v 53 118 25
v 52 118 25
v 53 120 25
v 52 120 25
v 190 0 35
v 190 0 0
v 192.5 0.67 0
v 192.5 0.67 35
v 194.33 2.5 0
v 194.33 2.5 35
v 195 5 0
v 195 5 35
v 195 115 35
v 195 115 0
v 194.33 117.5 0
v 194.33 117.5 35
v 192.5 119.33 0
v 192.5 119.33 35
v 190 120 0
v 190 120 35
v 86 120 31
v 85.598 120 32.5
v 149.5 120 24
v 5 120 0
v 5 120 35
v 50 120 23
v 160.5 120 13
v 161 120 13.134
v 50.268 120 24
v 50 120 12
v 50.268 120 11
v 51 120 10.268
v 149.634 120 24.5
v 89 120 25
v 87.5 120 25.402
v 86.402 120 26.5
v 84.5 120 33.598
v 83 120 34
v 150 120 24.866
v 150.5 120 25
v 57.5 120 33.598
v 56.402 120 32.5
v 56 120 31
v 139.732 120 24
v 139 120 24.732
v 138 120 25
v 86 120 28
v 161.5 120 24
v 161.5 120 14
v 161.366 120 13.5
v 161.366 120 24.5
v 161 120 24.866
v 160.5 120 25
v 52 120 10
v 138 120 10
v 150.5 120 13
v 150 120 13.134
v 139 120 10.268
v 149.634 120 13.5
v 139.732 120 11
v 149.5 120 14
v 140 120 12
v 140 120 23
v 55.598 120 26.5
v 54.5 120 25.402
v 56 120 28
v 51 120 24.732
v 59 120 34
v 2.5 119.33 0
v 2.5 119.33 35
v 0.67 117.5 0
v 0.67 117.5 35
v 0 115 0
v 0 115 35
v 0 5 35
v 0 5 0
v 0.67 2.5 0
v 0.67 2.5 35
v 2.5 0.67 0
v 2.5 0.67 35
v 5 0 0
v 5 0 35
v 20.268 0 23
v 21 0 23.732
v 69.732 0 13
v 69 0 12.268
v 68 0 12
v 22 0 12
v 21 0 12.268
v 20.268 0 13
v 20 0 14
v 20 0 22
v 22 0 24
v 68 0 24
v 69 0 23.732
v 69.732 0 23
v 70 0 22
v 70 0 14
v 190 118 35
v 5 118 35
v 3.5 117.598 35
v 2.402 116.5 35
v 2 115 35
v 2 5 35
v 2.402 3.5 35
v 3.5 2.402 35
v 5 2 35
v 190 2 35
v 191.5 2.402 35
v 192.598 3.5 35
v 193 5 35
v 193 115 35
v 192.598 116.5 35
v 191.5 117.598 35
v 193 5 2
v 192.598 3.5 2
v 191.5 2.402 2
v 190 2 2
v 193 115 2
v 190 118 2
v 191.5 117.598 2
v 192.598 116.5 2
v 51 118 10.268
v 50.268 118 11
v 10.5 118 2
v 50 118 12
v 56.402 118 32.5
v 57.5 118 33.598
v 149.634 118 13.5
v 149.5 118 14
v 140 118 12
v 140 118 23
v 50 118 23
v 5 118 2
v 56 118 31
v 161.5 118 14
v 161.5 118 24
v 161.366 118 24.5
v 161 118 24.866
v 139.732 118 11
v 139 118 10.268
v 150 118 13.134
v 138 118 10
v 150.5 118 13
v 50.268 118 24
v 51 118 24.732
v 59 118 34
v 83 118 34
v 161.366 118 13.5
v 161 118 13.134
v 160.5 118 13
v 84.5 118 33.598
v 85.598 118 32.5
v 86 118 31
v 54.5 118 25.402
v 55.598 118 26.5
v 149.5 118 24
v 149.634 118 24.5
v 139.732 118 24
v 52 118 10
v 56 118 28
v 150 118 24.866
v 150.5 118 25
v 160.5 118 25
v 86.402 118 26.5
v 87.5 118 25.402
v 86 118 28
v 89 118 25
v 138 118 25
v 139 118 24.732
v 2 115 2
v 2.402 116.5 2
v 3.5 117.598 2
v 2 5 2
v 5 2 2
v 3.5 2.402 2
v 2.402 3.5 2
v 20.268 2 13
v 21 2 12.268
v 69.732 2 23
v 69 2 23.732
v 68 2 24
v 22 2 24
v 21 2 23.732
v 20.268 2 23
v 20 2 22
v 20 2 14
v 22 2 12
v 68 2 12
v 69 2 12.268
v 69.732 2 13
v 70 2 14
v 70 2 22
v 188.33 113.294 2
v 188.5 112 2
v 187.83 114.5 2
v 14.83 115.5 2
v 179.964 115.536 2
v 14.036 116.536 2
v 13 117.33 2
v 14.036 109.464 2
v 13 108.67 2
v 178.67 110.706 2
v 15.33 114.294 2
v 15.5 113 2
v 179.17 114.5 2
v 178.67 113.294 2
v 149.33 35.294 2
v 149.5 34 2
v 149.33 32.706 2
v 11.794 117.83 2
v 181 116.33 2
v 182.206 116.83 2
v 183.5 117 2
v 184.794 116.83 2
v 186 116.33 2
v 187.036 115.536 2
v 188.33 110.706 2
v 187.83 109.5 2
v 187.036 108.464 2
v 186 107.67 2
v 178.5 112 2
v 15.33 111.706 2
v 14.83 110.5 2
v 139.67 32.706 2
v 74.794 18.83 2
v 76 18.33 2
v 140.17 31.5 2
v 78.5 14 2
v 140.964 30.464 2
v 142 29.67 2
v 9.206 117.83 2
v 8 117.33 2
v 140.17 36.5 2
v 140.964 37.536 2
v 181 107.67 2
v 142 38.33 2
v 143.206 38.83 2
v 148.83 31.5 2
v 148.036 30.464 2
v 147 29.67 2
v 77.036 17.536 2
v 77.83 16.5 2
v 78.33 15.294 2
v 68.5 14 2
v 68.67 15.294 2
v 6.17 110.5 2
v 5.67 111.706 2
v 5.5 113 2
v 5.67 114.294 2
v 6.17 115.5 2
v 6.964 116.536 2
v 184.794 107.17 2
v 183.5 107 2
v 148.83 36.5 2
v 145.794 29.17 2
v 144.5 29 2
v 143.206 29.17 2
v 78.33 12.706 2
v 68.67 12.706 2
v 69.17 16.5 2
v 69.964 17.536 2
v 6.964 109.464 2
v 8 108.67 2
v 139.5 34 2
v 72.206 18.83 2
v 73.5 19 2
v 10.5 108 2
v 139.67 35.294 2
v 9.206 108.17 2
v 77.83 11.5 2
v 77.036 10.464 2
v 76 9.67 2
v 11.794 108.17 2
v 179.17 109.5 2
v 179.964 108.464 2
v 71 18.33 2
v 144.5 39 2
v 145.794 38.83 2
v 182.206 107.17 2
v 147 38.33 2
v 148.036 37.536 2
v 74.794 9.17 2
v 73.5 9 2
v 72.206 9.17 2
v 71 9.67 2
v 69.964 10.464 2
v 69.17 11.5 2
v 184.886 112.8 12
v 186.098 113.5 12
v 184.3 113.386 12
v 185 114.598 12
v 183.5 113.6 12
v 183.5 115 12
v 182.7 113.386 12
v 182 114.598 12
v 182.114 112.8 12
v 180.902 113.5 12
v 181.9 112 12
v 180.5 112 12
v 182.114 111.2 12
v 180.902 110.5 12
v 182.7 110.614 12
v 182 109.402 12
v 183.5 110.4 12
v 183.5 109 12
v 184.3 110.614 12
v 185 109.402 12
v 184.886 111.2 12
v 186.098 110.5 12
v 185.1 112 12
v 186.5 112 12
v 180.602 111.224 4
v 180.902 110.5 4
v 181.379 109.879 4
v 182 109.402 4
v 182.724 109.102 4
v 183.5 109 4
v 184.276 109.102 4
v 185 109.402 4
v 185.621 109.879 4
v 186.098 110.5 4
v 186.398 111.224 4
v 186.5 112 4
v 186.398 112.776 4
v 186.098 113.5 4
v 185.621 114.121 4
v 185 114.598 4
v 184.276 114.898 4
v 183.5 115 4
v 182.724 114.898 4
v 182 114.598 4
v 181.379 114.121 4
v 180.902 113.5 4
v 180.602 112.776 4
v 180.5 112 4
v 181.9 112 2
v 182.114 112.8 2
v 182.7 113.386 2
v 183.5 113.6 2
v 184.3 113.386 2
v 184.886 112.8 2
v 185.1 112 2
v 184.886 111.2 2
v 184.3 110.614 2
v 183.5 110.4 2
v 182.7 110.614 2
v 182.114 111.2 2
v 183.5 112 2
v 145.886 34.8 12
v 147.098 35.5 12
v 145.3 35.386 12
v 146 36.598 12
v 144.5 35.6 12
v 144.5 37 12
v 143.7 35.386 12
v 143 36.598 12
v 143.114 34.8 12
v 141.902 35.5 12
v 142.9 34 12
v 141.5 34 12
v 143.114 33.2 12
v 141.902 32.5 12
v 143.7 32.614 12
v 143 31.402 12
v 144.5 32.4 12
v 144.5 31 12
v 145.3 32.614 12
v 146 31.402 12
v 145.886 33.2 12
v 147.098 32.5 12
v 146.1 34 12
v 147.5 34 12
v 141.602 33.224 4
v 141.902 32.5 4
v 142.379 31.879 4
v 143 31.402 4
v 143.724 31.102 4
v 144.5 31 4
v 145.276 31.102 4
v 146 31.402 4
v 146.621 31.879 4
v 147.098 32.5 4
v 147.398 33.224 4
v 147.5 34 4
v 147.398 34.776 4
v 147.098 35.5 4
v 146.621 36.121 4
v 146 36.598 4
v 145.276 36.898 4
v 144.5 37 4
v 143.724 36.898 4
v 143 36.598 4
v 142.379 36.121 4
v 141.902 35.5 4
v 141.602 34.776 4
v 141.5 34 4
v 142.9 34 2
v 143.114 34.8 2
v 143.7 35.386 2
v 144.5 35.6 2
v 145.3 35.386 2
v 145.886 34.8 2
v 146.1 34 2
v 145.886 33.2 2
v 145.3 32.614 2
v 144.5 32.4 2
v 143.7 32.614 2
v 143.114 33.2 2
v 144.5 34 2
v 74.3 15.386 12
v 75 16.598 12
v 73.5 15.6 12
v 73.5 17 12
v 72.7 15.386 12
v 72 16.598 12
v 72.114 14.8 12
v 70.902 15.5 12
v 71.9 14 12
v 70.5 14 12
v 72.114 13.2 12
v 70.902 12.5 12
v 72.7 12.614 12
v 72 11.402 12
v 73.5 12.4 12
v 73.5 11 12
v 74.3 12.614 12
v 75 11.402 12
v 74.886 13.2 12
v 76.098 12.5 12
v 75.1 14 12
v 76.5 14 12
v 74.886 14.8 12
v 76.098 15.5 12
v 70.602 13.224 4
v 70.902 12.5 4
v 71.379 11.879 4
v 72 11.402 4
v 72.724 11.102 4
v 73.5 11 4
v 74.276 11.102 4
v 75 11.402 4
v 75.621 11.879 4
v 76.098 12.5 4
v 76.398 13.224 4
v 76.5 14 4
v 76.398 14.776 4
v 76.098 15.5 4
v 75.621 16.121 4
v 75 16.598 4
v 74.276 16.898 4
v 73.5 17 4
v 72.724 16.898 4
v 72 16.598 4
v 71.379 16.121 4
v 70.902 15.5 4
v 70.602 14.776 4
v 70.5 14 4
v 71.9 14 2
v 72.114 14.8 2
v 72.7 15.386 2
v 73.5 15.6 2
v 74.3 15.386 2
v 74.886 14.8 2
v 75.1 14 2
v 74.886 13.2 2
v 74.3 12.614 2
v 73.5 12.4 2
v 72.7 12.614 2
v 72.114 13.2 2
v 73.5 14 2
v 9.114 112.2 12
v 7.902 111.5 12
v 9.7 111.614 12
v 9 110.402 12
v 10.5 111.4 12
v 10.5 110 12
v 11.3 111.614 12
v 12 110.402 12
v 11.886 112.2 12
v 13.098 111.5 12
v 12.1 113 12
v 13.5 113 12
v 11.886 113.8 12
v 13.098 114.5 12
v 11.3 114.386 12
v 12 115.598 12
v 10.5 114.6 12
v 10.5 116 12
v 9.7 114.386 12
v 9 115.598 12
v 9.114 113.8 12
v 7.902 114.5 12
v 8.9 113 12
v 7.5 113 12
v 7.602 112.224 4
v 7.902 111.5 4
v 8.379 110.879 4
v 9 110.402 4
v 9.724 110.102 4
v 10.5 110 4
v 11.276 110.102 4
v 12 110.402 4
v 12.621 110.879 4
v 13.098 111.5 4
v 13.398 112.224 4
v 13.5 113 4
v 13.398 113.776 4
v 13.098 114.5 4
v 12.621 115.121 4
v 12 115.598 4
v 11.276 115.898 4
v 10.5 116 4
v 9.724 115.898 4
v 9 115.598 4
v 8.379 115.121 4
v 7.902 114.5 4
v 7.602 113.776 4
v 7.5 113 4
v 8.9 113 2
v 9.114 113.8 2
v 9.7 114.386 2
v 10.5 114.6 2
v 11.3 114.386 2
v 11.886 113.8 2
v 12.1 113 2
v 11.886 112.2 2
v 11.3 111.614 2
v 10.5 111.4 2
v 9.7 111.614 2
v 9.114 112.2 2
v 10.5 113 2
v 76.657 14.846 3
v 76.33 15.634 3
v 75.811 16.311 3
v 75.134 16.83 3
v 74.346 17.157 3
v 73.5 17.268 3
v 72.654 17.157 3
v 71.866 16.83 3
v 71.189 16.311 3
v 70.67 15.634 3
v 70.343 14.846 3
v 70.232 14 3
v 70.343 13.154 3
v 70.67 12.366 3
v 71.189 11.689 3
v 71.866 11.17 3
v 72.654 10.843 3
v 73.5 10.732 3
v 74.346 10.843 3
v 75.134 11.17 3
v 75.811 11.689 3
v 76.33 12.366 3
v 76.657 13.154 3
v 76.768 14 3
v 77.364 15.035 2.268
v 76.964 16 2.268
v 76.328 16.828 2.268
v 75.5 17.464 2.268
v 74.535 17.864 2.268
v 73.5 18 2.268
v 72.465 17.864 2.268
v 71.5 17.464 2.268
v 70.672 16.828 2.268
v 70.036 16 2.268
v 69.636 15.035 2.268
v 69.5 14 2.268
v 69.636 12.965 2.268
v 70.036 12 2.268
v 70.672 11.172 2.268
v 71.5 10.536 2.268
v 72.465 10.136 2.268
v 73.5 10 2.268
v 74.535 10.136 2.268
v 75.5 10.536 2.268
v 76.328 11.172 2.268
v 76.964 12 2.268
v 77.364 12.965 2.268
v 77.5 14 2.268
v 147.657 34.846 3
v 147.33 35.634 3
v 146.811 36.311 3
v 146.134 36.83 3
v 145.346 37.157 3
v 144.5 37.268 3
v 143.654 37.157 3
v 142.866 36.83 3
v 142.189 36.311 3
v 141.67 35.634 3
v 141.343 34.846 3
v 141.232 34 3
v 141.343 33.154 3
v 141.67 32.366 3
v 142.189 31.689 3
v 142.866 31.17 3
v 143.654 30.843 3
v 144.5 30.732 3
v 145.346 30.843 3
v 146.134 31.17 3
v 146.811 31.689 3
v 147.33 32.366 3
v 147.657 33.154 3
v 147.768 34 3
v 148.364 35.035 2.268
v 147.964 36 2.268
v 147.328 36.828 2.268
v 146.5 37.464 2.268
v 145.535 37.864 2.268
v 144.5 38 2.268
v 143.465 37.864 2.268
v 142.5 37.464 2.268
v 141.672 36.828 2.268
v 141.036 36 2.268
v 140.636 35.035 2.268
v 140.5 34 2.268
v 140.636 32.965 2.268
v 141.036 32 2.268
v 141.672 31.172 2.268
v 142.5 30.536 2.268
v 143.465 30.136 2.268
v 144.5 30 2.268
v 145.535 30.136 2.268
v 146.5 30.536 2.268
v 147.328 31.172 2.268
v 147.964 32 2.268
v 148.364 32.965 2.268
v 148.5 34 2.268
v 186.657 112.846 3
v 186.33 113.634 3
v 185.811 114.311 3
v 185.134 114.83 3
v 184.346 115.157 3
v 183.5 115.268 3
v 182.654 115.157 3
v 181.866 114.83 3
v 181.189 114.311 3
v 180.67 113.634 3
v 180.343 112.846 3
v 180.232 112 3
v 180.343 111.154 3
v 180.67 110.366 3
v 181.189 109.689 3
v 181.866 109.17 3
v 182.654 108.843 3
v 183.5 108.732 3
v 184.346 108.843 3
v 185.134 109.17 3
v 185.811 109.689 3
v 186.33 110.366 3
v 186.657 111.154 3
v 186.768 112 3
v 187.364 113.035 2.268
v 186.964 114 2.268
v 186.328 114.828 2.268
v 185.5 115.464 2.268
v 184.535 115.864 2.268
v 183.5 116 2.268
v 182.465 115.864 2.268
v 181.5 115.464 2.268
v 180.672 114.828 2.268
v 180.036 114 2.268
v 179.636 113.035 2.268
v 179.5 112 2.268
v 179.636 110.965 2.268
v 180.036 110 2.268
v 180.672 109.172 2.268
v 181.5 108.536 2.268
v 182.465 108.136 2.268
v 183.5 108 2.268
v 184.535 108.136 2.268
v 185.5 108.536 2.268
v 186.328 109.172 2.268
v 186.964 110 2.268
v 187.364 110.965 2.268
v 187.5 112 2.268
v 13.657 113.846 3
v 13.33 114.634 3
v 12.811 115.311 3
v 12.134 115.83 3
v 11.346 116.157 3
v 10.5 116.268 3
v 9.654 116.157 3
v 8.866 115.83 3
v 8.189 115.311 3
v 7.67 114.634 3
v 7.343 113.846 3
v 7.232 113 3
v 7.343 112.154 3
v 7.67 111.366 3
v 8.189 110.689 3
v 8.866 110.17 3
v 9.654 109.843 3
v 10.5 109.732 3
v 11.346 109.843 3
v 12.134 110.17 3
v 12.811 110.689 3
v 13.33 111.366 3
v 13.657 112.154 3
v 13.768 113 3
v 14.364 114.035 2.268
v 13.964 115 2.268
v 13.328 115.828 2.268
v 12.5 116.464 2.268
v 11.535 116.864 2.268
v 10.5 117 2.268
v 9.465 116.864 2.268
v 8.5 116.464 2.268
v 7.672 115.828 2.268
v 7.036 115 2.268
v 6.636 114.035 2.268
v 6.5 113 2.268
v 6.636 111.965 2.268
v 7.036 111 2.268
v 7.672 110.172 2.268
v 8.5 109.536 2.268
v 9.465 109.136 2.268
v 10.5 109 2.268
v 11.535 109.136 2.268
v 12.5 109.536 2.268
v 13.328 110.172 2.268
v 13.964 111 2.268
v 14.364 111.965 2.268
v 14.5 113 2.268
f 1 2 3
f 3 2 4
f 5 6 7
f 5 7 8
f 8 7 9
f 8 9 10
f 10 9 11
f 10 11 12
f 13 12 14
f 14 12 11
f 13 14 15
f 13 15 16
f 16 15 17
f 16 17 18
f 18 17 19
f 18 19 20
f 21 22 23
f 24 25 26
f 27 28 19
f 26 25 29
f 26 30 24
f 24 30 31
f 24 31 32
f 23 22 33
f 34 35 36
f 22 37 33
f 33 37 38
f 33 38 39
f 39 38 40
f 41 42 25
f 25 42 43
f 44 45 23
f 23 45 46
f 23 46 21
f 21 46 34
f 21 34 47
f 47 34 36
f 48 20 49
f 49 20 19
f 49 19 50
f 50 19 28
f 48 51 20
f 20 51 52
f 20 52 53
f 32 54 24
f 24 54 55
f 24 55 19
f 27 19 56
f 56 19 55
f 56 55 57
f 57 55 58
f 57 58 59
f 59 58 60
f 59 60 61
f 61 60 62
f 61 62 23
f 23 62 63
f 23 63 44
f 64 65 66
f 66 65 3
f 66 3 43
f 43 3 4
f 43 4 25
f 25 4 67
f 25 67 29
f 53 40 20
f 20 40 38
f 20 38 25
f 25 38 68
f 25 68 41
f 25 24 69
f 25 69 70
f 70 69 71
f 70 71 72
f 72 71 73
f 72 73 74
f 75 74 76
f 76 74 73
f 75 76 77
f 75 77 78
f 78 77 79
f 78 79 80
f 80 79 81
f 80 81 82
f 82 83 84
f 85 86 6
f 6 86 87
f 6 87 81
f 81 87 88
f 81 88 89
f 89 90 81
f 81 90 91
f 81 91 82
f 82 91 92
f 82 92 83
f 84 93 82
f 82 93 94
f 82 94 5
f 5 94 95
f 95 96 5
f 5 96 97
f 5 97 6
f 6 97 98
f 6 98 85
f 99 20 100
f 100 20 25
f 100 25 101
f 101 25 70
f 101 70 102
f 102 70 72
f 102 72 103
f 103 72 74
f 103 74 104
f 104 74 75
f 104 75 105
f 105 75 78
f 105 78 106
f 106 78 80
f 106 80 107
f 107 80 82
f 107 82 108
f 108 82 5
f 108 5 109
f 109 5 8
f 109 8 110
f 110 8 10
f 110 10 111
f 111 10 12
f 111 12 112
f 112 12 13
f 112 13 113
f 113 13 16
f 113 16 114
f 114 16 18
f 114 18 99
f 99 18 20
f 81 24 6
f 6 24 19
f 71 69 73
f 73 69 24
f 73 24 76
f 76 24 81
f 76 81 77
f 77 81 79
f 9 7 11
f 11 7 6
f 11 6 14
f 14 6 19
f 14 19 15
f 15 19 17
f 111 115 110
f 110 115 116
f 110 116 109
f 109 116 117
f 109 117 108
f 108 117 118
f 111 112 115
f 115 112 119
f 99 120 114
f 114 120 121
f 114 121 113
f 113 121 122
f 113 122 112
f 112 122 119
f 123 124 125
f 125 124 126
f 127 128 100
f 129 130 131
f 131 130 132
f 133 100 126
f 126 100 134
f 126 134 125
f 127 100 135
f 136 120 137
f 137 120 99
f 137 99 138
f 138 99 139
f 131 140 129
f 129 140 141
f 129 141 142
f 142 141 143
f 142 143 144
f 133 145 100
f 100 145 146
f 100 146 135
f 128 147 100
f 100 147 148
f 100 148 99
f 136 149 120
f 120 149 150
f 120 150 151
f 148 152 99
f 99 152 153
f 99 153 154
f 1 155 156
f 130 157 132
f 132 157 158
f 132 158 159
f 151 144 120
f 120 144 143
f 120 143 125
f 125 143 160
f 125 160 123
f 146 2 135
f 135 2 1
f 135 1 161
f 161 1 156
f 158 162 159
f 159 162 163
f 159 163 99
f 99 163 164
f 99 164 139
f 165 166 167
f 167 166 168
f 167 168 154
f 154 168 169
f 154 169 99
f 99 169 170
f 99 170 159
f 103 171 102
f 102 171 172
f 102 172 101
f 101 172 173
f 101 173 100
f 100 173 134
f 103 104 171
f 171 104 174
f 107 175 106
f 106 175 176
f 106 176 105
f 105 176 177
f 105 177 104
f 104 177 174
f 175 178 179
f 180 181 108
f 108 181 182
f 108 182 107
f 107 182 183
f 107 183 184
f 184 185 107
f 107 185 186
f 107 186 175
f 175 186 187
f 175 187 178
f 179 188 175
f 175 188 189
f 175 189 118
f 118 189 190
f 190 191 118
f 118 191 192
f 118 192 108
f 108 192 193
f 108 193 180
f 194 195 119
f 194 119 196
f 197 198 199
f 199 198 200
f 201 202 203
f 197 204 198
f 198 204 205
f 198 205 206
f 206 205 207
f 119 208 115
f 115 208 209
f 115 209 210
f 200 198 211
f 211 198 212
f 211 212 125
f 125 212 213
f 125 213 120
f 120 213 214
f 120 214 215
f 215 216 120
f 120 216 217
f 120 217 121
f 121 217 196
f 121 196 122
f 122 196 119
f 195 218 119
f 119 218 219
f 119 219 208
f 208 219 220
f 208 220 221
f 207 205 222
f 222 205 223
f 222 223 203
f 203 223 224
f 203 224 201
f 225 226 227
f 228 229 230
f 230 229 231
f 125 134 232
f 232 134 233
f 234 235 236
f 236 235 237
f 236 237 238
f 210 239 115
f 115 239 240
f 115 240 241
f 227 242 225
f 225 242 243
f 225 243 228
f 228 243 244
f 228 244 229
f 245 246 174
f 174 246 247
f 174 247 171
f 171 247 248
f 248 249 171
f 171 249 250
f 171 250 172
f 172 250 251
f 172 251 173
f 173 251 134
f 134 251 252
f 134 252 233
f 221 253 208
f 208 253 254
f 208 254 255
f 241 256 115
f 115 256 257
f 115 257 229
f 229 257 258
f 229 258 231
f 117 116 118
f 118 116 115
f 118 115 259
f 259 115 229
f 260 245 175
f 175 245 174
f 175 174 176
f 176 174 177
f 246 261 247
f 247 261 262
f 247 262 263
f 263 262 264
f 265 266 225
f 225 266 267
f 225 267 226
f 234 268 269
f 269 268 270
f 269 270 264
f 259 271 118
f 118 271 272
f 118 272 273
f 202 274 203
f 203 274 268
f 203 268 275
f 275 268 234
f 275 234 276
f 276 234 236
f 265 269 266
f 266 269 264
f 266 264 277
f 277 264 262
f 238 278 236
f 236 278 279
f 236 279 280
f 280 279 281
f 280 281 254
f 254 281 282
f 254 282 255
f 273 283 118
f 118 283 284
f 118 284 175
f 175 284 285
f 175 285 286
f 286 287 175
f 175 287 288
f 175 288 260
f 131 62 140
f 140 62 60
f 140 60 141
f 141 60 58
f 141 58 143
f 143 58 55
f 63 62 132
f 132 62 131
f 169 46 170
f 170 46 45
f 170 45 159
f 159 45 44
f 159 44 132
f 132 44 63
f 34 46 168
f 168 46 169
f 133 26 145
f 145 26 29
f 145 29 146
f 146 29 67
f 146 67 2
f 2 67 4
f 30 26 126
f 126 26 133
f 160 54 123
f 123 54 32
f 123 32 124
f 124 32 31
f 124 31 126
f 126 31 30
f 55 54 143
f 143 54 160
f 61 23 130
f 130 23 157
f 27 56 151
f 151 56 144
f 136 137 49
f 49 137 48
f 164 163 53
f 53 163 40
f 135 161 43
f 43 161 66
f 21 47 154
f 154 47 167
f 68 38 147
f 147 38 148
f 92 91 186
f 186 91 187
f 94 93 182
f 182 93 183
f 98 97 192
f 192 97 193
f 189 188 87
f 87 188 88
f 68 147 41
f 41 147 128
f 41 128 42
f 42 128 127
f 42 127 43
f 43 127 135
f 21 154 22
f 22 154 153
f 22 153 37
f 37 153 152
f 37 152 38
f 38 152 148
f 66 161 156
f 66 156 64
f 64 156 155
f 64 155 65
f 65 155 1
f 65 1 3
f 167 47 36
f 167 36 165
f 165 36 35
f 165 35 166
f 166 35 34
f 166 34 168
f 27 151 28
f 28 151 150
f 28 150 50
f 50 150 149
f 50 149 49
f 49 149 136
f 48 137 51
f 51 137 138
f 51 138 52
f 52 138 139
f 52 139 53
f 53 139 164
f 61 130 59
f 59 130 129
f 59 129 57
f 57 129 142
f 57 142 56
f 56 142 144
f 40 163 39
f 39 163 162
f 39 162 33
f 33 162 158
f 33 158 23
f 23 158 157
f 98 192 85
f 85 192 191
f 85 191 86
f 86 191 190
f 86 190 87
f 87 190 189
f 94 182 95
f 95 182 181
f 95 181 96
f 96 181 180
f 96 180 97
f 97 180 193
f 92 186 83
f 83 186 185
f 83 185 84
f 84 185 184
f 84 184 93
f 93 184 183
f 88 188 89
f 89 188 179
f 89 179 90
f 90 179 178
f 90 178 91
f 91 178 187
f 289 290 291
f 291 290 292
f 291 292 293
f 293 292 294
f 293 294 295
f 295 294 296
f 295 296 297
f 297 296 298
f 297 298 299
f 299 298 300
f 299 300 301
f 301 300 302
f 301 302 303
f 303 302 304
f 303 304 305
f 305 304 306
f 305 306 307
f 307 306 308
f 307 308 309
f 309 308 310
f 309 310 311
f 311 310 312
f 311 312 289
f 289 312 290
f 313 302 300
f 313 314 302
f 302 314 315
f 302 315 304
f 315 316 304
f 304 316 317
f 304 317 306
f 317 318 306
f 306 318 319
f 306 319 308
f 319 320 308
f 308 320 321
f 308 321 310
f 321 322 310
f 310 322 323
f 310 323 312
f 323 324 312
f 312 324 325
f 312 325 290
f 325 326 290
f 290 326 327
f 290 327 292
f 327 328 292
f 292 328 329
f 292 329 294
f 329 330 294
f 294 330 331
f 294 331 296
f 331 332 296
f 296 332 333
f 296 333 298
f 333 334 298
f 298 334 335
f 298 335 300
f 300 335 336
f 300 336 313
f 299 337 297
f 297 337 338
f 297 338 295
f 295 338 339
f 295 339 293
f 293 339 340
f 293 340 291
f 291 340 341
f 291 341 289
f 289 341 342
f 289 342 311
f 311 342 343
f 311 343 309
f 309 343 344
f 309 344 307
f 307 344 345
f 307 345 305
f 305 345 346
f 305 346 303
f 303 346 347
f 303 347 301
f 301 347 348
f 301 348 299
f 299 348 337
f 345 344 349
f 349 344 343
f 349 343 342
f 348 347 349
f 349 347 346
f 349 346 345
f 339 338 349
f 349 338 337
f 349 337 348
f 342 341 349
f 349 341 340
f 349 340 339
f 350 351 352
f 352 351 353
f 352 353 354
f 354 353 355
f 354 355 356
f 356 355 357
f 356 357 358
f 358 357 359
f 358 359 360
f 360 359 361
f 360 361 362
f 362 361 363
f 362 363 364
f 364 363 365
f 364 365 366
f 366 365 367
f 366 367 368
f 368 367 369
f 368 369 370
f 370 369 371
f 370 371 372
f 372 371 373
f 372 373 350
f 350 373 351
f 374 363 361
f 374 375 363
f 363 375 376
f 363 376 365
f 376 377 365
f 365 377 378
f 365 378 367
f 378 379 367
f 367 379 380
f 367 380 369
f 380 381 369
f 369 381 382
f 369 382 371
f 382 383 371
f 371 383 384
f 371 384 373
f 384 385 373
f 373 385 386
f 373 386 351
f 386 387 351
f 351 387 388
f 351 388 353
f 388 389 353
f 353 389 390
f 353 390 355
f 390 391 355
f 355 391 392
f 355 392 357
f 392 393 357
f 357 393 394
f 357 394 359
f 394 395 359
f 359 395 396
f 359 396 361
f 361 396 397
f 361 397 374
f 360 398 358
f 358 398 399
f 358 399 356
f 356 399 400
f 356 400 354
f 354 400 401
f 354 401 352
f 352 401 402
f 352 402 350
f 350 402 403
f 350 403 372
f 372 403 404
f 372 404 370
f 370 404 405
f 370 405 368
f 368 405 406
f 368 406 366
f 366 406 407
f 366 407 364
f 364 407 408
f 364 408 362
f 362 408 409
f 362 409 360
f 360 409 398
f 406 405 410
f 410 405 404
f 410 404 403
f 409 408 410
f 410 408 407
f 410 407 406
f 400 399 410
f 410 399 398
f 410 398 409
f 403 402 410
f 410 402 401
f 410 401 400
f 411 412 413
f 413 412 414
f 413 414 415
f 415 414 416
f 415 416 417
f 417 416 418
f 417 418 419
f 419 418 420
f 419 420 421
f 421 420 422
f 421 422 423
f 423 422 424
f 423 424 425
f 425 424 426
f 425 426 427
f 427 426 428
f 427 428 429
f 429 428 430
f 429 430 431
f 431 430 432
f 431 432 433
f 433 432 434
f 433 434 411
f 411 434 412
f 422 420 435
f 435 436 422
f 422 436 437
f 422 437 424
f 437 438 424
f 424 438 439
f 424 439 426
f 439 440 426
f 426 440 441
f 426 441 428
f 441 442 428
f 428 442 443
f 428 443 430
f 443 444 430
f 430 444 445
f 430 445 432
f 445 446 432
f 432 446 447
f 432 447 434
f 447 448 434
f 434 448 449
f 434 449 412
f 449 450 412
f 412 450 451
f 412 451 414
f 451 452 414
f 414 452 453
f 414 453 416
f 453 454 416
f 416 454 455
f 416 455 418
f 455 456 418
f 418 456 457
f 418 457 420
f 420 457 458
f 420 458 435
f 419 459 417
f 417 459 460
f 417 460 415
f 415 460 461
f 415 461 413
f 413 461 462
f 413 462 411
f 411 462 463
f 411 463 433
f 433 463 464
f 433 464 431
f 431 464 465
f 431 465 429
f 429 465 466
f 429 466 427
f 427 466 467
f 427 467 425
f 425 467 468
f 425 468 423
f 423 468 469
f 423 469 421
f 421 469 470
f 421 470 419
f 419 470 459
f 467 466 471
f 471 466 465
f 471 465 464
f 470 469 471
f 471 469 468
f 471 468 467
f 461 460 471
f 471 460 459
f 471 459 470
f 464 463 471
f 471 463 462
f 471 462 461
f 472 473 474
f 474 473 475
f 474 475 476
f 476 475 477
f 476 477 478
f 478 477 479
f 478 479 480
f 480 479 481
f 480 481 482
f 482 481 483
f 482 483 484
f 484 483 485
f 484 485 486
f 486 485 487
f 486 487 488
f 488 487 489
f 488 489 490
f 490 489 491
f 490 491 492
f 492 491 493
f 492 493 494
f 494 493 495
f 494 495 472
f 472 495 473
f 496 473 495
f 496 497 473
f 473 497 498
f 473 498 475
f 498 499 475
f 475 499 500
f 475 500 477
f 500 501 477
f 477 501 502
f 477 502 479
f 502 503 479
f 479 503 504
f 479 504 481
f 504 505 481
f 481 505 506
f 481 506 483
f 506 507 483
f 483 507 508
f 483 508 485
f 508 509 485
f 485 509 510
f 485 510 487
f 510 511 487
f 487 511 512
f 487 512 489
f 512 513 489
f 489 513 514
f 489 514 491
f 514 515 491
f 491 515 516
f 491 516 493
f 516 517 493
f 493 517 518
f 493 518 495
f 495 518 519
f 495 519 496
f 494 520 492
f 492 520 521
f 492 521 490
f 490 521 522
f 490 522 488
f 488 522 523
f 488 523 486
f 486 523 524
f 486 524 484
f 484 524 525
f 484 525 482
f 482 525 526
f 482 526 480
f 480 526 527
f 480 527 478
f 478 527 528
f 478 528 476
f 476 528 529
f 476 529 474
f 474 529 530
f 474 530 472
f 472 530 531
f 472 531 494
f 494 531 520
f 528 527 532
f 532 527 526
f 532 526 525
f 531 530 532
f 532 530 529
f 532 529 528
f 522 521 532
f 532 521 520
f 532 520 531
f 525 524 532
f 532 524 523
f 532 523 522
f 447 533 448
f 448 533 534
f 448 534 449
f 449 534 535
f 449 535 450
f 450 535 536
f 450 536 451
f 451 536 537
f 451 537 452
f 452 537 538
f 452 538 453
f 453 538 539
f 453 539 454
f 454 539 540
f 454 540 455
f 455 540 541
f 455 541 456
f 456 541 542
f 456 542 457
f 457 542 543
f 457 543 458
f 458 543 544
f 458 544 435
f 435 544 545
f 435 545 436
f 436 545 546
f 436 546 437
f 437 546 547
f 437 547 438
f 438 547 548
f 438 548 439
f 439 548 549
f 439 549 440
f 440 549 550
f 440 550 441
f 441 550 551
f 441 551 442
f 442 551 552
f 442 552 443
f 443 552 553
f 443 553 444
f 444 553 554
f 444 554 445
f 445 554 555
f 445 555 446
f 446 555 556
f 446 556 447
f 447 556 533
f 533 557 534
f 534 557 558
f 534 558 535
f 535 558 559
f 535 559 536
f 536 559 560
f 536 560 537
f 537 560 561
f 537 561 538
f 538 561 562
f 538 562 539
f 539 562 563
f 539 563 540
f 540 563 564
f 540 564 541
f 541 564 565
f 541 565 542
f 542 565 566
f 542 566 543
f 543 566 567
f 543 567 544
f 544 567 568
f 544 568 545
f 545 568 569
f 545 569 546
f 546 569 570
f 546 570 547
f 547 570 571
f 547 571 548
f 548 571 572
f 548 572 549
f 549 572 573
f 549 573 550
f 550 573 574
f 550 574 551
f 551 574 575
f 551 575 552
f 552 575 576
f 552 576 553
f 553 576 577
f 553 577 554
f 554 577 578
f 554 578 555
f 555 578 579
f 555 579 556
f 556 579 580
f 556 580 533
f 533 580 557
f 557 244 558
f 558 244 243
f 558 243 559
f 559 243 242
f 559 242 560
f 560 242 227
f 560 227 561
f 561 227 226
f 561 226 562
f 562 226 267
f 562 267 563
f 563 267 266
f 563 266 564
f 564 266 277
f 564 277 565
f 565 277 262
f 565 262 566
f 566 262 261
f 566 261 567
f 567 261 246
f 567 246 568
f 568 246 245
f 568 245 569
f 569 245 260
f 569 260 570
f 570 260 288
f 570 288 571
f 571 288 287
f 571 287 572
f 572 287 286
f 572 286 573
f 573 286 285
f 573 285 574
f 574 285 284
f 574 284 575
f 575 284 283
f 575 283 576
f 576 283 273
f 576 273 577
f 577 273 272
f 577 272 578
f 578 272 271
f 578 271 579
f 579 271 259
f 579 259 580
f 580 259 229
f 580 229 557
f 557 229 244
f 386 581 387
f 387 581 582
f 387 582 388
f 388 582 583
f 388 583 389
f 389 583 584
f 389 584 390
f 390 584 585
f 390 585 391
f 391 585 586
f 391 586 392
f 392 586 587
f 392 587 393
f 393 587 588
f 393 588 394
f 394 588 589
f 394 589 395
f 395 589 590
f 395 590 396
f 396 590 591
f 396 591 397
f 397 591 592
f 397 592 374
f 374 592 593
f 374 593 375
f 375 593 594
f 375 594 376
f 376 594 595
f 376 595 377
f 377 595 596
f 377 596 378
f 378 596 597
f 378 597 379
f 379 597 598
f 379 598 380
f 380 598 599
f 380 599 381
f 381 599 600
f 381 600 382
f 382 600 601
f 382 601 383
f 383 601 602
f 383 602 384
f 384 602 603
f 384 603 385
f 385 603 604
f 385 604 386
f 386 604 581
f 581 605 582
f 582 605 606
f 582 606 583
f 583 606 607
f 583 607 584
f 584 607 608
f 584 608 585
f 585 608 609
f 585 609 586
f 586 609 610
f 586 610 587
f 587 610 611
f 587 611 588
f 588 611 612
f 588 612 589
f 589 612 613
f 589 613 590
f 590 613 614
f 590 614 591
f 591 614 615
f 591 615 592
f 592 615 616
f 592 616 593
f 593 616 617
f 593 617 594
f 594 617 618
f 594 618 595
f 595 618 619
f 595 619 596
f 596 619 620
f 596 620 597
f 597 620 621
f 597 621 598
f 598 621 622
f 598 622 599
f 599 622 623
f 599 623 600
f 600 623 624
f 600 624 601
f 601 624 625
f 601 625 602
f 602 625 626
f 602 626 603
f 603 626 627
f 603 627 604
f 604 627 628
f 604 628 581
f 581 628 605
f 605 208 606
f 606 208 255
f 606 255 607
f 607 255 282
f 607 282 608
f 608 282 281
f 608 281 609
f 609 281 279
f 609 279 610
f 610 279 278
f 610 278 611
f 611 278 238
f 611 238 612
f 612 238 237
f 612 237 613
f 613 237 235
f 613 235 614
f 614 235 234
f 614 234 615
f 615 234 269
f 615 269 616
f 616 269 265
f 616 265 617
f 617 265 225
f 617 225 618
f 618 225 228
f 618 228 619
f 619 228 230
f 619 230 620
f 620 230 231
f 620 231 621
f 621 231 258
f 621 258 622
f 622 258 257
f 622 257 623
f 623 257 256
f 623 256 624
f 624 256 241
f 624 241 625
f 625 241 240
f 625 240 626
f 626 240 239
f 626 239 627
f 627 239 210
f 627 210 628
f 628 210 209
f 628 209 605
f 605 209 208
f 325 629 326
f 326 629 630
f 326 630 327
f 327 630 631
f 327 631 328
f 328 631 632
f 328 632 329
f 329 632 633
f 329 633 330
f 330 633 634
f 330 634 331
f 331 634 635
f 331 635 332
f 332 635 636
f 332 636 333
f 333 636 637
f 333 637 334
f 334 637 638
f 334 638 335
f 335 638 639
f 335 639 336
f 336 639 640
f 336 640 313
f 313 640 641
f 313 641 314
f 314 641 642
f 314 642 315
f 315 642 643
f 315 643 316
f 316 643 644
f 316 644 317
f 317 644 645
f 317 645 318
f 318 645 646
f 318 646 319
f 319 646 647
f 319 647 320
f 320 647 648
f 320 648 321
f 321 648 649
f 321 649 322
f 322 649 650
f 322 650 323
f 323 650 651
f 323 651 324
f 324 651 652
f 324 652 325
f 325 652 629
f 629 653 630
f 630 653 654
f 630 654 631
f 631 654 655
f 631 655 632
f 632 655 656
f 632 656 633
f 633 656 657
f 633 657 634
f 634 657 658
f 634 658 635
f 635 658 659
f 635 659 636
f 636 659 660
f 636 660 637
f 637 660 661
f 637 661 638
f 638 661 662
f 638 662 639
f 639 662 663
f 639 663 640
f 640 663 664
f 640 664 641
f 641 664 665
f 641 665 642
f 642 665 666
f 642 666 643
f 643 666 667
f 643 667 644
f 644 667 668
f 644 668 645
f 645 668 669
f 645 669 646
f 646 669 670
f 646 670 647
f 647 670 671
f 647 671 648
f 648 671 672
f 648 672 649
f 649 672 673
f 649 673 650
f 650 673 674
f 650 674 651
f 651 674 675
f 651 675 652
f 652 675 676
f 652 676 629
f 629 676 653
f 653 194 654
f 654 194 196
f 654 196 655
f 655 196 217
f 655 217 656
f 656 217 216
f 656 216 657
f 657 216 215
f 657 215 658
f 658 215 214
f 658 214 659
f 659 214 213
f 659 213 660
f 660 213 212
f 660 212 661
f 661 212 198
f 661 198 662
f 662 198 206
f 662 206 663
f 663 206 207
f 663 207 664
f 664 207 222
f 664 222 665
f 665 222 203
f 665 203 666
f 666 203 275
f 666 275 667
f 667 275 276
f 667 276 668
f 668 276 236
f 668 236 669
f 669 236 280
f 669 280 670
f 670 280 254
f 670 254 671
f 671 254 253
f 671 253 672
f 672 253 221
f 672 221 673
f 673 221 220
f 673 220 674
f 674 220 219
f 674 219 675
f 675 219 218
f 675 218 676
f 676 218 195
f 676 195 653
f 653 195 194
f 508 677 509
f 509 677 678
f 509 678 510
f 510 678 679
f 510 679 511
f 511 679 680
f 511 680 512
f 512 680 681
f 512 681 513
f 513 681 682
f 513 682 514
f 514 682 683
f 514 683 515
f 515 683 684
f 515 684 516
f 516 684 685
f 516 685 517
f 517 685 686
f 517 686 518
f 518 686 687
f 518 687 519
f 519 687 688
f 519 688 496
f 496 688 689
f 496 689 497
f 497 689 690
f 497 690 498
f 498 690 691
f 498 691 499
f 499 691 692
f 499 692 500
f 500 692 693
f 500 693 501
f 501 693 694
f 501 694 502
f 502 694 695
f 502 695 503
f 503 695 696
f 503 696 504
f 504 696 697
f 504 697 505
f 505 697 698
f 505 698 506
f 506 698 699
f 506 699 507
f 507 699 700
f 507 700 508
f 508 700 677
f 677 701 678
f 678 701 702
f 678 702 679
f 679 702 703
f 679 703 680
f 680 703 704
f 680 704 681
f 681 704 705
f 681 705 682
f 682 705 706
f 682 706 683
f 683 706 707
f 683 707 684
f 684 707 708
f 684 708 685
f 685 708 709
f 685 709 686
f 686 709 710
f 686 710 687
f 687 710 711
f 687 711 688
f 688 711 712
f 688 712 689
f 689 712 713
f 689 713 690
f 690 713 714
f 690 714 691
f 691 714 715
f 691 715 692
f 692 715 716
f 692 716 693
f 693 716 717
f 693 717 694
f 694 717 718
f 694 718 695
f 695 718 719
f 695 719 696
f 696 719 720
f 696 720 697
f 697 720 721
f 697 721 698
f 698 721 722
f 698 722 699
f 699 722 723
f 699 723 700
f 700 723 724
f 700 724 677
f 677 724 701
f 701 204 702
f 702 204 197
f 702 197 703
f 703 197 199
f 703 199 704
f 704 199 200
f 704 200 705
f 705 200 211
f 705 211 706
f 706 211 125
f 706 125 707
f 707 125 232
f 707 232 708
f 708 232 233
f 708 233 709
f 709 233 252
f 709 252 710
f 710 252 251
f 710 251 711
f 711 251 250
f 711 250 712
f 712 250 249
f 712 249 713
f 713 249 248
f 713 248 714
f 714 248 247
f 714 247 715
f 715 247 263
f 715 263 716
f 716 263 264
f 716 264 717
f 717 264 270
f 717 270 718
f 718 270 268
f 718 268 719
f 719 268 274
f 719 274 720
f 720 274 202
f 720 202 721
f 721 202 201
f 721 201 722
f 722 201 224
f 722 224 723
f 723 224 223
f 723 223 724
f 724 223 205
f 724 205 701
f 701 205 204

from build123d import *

# Parameters (mm, degrees)
BOSS_EXTRU_1_DEPTH      = 35
COQUE1_T                = -2
ESQUISSE2_W             = 12
ESQUISSE2_H             = 12
ENL_V_MAT_EXTRU_1_DEPTH = 10
ESQUISSE3_W             = 30
ESQUISSE3_H             = 9
ENL_V_MAT_EXTRU_2_DEPTH = 10
ESQUISSE4_W             = 50
ESQUISSE4_H             = 12
ENL_V_MAT_EXTRU_3_DEPTH = 10
CONG_1_R                = 3
CONG_2_R                = 1
CONG_3_R                = 2
ESQUISSE5_R             = 3
ESQUISSE5_R_2           = 1.6
BOSS_EXTRU_2_DEPTH      = 10
CONG_4_R                = 2


with BuildPart() as part:
    # Esquisse1 → Boss.-Extru.1 (new body)
    with BuildSketch(Plane.XY):
        with BuildLine():
            Line((5, 0), (190, 0))
            ThreePointArc((190, 0), (193.535533906, 1.464466094), (195, 5))
            Line((195, 5), (195, 115))
            ThreePointArc((195, 115), (193.535533906, 118.535533906), (190, 120))
            Line((190, 120), (5, 120))
            ThreePointArc((5, 120), (1.464466094, 118.535533906), (0, 115))
            Line((0, 115), (0, 5))
            ThreePointArc((0, 5), (1.464466094, 1.464466094), (5, 0))
        make_face()
    extrude(amount=BOSS_EXTRU_1_DEPTH)

    # Coque1
    coque1_openings = [part.faces().sort_by_distance(p)[0] for p in [
        (97.5, 60, 35),
    ]]
    offset(amount=COQUE1_T, openings=coque1_openings, kind=Kind.INTERSECTION)

    # Esquisse2 → Enlèv. mat.-Extru.1 (cut)
    with BuildSketch(Plane(origin=(0, 120, 0), x_dir=(1, 0, 0), z_dir=(0, 1, 0))):
        with Locations((155.5, -19)):
            Rectangle(ESQUISSE2_W, ESQUISSE2_H)
        with BuildLine():
            Line((52, -10), (138, -10))
            ThreePointArc((138, -10), (139.414213562, -10.585786438), (140, -12))
            Line((140, -12), (140, -23))
            ThreePointArc((140, -23), (139.414213562, -24.414213562), (138, -25))
            Line((138, -25), (52, -25))
            ThreePointArc((52, -25), (50.585786438, -24.414213562), (50, -23))
            Line((50, -23), (50, -12))
            ThreePointArc((50, -12), (50.585786438, -10.585786438), (52, -10))
        make_face()
    extrude(amount=-ENL_V_MAT_EXTRU_1_DEPTH, mode=Mode.SUBTRACT)

    # Esquisse3 → Enlèv. mat.-Extru.2 (cut)
    with BuildSketch(Plane(origin=(0, 120, 0), x_dir=(1, 0, 0), z_dir=(0, 1, 0))):
        with Locations((71, -29.5)):
            Rectangle(ESQUISSE3_W, ESQUISSE3_H)
    extrude(amount=-ENL_V_MAT_EXTRU_2_DEPTH, mode=Mode.SUBTRACT)

    # Esquisse4 → Enlèv. mat.-Extru.3 (cut)
    with BuildSketch(Plane.XZ):
        with Locations((45, 18)):
            Rectangle(ESQUISSE4_W, ESQUISSE4_H)
    extrude(amount=-ENL_V_MAT_EXTRU_3_DEPTH, mode=Mode.SUBTRACT)

    # Congé1
    cong_1_edges = [part.edges().sort_by_distance(p)[0] for p in [
        (86, 119, 25),
        (56, 119, 25),
        (56, 119, 34),
        (86, 119, 34),
    ]]
    fillet(cong_1_edges, radius=CONG_1_R)

    # Congé2
    cong_2_edges = [part.edges().sort_by_distance(p)[0] for p in [
        (149.5, 119, 25),
        (149.5, 119, 13),
        (161.5, 119, 13),
        (161.5, 119, 25),
    ]]
    fillet(cong_2_edges, radius=CONG_2_R)

    # Congé3
    cong_3_edges = [part.edges().sort_by_distance(p)[0] for p in [
        (20, 1, 12),
        (20, 1, 24),
        (70, 1, 24),
        (70, 1, 12),
    ]]
    fillet(cong_3_edges, radius=CONG_3_R)

    # Esquisse5 → Boss.-Extru.2 (add)
    # profile 1 of 4: a face of its own
    with BuildSketch(Plane.XY.offset(2)):
        with Locations((10.5, 113)):
            Circle(ESQUISSE5_R)
        with Locations((10.5, 113)):
            Circle(ESQUISSE5_R_2, mode=Mode.SUBTRACT)
    # profile 2 of 4: a face of its own
    with BuildSketch(Plane.XY.offset(2)):
        with Locations((73.5, 14)):
            Circle(ESQUISSE5_R)
        with Locations((73.5, 14)):
            Circle(ESQUISSE5_R_2, mode=Mode.SUBTRACT)
    # profile 3 of 4: a face of its own
    with BuildSketch(Plane.XY.offset(2)):
        with Locations((144.5, 34)):
            Circle(ESQUISSE5_R)
        with Locations((144.5, 34)):
            Circle(ESQUISSE5_R_2, mode=Mode.SUBTRACT)
    # profile 4 of 4: a face of its own
    with BuildSketch(Plane.XY.offset(2)):
        with Locations((183.5, 112)):
            Circle(ESQUISSE5_R)
        with Locations((183.5, 112)):
            Circle(ESQUISSE5_R_2, mode=Mode.SUBTRACT)
    extrude(amount=BOSS_EXTRU_2_DEPTH)

    # Congé4
    cong_4_edges = [part.edges().sort_by_distance(p)[0] for p in [
        (7.5, 113, 2),
        (70.5, 14, 2),
        (141.5, 34, 2),
        (180.5, 112, 2),
    ]]
    fillet(cong_4_edges, radius=CONG_4_R - 0.0001)  # a hair under: the kernel refuses the full size


solid = part.part
